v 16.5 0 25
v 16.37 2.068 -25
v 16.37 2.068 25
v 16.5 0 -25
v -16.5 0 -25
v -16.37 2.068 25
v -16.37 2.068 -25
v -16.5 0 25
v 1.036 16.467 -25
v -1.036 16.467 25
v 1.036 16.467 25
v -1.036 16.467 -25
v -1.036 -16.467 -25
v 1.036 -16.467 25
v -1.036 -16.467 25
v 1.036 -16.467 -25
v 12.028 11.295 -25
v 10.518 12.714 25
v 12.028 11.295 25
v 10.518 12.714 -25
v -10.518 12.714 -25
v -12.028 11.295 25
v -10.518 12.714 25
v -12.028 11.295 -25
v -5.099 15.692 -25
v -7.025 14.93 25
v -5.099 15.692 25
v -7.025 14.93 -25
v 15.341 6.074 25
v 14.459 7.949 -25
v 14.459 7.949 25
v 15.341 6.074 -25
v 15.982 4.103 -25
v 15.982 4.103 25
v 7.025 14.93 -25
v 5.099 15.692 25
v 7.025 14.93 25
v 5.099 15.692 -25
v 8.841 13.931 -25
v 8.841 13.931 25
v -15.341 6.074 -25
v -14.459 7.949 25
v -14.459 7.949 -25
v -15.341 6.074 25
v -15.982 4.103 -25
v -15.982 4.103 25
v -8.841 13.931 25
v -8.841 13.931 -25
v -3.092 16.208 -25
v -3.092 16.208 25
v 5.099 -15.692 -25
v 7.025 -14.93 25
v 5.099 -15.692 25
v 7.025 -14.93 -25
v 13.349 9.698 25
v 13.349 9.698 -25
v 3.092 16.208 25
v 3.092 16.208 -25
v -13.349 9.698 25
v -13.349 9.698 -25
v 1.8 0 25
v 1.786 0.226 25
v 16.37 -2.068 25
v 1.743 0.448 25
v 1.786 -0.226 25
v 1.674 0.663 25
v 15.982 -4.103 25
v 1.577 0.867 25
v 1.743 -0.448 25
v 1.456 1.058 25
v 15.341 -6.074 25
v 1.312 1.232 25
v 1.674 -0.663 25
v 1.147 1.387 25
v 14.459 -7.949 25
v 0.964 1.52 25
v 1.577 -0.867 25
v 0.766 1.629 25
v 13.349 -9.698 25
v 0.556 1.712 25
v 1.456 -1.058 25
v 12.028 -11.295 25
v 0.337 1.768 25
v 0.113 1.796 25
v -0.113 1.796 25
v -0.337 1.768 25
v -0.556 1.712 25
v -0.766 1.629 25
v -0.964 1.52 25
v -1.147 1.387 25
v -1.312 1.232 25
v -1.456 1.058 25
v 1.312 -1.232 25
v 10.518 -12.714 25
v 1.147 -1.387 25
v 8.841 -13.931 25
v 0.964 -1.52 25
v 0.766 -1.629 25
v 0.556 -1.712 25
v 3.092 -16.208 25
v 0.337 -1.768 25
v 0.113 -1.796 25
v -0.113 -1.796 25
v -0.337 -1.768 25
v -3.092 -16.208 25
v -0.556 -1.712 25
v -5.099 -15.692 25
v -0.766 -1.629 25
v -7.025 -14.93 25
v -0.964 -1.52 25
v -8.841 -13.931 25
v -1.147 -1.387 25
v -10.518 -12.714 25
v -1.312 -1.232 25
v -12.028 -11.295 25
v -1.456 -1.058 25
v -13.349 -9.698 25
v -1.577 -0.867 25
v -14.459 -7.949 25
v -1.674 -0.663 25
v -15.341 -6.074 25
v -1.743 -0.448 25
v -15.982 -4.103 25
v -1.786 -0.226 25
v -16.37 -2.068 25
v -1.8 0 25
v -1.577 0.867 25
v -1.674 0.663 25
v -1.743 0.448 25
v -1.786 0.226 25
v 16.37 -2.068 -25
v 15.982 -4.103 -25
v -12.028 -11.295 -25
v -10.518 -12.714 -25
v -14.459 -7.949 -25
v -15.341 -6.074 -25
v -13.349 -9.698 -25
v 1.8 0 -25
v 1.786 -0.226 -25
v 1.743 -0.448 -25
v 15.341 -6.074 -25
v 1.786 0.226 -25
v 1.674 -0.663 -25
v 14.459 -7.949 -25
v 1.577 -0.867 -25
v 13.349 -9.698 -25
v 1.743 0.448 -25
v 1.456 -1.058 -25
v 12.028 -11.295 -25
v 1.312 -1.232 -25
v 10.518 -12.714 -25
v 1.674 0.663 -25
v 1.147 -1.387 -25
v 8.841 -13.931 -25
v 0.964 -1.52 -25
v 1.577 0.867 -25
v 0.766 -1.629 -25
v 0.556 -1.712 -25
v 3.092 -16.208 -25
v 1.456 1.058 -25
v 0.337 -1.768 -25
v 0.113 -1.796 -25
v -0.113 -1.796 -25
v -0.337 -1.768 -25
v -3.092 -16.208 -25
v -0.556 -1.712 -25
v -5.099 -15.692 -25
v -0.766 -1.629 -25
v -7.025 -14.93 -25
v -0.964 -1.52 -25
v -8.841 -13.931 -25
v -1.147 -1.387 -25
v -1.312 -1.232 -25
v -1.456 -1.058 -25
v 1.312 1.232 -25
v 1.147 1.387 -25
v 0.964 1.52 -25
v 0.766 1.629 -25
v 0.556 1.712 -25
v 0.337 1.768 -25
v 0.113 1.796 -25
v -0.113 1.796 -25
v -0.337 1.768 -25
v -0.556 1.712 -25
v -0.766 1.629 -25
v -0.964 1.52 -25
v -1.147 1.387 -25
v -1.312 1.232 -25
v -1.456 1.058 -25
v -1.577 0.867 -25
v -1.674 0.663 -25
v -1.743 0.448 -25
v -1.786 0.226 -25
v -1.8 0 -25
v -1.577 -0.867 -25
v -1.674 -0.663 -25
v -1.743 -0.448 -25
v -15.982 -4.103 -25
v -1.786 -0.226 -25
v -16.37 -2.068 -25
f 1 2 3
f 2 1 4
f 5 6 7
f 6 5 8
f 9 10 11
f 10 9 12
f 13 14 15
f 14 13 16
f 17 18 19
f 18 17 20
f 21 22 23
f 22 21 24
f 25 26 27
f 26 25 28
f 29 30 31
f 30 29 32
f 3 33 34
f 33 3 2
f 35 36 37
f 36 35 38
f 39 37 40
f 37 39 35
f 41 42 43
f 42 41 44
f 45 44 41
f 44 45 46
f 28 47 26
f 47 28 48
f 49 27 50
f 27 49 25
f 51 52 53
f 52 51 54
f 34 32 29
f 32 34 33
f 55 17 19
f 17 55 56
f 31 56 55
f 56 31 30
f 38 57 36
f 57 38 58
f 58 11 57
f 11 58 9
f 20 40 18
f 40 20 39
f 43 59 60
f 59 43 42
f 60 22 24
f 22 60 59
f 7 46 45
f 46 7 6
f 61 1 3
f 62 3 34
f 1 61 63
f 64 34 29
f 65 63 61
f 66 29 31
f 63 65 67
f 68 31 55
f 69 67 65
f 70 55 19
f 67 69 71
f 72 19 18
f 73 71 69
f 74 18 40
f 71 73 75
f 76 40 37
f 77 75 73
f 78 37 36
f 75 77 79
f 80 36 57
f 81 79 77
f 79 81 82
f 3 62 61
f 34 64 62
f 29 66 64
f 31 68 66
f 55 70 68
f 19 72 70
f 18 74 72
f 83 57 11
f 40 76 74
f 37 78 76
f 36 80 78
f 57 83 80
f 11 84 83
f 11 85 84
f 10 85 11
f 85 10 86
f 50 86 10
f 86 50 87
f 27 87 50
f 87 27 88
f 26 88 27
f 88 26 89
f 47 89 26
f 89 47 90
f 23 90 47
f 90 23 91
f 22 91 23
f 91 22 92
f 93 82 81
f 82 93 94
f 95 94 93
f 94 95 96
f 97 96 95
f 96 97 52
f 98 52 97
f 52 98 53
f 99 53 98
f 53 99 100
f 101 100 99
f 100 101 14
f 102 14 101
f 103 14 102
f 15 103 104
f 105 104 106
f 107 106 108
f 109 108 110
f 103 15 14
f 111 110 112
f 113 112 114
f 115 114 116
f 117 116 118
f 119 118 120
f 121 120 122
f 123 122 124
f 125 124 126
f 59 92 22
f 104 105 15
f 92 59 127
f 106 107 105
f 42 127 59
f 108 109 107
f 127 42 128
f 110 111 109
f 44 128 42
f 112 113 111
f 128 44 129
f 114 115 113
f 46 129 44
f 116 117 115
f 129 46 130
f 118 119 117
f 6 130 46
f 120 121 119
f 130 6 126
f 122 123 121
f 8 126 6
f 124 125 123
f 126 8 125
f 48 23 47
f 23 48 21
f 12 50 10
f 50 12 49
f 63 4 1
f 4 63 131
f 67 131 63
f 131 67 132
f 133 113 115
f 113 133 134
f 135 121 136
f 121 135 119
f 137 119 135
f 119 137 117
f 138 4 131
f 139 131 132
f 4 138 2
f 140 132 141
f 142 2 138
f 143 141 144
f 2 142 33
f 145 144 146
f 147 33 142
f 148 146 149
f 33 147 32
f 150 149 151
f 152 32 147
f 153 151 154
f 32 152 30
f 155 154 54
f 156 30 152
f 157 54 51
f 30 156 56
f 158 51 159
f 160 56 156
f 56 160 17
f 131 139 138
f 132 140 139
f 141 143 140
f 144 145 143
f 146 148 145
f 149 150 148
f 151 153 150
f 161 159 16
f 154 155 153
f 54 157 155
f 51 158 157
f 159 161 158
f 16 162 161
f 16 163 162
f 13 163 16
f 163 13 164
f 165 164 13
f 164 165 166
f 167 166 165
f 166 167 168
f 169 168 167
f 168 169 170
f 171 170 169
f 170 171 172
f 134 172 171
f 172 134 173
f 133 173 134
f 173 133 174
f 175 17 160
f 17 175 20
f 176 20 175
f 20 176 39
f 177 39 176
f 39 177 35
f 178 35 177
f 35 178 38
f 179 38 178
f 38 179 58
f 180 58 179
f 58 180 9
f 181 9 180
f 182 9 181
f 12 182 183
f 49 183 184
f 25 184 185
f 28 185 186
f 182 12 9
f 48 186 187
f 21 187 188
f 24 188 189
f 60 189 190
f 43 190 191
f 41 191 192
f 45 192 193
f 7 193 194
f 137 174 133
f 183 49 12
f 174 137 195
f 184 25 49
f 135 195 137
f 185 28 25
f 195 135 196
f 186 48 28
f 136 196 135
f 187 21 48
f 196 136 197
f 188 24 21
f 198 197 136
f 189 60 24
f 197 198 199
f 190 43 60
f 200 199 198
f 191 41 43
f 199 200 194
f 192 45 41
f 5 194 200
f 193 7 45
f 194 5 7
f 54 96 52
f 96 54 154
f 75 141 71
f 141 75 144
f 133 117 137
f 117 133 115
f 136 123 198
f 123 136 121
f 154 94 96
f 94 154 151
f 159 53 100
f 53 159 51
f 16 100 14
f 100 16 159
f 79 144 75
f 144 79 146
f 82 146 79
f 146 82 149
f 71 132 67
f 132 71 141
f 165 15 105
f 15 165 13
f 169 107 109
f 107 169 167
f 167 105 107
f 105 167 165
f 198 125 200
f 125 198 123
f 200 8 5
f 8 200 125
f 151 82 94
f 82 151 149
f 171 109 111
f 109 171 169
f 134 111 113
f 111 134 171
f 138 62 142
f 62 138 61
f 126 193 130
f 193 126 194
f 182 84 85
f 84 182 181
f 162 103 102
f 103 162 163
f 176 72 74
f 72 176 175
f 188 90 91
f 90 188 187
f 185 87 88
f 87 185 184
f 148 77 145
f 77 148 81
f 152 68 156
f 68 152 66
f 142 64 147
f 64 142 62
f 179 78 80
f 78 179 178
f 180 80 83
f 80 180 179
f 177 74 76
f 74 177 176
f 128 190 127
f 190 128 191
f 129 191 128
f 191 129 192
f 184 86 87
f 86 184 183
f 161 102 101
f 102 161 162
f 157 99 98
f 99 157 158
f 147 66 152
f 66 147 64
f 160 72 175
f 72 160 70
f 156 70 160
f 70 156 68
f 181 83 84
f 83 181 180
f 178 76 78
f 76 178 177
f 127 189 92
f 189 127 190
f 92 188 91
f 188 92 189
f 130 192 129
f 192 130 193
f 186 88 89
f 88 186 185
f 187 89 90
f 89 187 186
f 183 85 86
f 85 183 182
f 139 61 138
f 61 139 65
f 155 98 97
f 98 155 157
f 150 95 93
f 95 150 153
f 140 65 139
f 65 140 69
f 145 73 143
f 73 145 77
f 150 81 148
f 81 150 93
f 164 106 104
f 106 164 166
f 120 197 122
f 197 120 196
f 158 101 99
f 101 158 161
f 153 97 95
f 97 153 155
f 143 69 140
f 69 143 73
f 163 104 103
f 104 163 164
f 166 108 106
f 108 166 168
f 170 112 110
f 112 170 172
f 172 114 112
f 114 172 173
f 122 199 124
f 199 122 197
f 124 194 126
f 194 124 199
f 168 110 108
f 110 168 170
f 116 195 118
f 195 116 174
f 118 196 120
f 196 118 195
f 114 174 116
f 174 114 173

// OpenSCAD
$fn = 50;


difference() {
	union() {
		translate(v = [0, 0, -25.0000000000]) {
			cylinder(h = 50, r = 16.5000000000);
		}
	}
	union() {
		translate(v = [0, 0, -100.0000000000]) {
			cylinder(h = 200, r = 1.8000000000);
		}
	}
}
